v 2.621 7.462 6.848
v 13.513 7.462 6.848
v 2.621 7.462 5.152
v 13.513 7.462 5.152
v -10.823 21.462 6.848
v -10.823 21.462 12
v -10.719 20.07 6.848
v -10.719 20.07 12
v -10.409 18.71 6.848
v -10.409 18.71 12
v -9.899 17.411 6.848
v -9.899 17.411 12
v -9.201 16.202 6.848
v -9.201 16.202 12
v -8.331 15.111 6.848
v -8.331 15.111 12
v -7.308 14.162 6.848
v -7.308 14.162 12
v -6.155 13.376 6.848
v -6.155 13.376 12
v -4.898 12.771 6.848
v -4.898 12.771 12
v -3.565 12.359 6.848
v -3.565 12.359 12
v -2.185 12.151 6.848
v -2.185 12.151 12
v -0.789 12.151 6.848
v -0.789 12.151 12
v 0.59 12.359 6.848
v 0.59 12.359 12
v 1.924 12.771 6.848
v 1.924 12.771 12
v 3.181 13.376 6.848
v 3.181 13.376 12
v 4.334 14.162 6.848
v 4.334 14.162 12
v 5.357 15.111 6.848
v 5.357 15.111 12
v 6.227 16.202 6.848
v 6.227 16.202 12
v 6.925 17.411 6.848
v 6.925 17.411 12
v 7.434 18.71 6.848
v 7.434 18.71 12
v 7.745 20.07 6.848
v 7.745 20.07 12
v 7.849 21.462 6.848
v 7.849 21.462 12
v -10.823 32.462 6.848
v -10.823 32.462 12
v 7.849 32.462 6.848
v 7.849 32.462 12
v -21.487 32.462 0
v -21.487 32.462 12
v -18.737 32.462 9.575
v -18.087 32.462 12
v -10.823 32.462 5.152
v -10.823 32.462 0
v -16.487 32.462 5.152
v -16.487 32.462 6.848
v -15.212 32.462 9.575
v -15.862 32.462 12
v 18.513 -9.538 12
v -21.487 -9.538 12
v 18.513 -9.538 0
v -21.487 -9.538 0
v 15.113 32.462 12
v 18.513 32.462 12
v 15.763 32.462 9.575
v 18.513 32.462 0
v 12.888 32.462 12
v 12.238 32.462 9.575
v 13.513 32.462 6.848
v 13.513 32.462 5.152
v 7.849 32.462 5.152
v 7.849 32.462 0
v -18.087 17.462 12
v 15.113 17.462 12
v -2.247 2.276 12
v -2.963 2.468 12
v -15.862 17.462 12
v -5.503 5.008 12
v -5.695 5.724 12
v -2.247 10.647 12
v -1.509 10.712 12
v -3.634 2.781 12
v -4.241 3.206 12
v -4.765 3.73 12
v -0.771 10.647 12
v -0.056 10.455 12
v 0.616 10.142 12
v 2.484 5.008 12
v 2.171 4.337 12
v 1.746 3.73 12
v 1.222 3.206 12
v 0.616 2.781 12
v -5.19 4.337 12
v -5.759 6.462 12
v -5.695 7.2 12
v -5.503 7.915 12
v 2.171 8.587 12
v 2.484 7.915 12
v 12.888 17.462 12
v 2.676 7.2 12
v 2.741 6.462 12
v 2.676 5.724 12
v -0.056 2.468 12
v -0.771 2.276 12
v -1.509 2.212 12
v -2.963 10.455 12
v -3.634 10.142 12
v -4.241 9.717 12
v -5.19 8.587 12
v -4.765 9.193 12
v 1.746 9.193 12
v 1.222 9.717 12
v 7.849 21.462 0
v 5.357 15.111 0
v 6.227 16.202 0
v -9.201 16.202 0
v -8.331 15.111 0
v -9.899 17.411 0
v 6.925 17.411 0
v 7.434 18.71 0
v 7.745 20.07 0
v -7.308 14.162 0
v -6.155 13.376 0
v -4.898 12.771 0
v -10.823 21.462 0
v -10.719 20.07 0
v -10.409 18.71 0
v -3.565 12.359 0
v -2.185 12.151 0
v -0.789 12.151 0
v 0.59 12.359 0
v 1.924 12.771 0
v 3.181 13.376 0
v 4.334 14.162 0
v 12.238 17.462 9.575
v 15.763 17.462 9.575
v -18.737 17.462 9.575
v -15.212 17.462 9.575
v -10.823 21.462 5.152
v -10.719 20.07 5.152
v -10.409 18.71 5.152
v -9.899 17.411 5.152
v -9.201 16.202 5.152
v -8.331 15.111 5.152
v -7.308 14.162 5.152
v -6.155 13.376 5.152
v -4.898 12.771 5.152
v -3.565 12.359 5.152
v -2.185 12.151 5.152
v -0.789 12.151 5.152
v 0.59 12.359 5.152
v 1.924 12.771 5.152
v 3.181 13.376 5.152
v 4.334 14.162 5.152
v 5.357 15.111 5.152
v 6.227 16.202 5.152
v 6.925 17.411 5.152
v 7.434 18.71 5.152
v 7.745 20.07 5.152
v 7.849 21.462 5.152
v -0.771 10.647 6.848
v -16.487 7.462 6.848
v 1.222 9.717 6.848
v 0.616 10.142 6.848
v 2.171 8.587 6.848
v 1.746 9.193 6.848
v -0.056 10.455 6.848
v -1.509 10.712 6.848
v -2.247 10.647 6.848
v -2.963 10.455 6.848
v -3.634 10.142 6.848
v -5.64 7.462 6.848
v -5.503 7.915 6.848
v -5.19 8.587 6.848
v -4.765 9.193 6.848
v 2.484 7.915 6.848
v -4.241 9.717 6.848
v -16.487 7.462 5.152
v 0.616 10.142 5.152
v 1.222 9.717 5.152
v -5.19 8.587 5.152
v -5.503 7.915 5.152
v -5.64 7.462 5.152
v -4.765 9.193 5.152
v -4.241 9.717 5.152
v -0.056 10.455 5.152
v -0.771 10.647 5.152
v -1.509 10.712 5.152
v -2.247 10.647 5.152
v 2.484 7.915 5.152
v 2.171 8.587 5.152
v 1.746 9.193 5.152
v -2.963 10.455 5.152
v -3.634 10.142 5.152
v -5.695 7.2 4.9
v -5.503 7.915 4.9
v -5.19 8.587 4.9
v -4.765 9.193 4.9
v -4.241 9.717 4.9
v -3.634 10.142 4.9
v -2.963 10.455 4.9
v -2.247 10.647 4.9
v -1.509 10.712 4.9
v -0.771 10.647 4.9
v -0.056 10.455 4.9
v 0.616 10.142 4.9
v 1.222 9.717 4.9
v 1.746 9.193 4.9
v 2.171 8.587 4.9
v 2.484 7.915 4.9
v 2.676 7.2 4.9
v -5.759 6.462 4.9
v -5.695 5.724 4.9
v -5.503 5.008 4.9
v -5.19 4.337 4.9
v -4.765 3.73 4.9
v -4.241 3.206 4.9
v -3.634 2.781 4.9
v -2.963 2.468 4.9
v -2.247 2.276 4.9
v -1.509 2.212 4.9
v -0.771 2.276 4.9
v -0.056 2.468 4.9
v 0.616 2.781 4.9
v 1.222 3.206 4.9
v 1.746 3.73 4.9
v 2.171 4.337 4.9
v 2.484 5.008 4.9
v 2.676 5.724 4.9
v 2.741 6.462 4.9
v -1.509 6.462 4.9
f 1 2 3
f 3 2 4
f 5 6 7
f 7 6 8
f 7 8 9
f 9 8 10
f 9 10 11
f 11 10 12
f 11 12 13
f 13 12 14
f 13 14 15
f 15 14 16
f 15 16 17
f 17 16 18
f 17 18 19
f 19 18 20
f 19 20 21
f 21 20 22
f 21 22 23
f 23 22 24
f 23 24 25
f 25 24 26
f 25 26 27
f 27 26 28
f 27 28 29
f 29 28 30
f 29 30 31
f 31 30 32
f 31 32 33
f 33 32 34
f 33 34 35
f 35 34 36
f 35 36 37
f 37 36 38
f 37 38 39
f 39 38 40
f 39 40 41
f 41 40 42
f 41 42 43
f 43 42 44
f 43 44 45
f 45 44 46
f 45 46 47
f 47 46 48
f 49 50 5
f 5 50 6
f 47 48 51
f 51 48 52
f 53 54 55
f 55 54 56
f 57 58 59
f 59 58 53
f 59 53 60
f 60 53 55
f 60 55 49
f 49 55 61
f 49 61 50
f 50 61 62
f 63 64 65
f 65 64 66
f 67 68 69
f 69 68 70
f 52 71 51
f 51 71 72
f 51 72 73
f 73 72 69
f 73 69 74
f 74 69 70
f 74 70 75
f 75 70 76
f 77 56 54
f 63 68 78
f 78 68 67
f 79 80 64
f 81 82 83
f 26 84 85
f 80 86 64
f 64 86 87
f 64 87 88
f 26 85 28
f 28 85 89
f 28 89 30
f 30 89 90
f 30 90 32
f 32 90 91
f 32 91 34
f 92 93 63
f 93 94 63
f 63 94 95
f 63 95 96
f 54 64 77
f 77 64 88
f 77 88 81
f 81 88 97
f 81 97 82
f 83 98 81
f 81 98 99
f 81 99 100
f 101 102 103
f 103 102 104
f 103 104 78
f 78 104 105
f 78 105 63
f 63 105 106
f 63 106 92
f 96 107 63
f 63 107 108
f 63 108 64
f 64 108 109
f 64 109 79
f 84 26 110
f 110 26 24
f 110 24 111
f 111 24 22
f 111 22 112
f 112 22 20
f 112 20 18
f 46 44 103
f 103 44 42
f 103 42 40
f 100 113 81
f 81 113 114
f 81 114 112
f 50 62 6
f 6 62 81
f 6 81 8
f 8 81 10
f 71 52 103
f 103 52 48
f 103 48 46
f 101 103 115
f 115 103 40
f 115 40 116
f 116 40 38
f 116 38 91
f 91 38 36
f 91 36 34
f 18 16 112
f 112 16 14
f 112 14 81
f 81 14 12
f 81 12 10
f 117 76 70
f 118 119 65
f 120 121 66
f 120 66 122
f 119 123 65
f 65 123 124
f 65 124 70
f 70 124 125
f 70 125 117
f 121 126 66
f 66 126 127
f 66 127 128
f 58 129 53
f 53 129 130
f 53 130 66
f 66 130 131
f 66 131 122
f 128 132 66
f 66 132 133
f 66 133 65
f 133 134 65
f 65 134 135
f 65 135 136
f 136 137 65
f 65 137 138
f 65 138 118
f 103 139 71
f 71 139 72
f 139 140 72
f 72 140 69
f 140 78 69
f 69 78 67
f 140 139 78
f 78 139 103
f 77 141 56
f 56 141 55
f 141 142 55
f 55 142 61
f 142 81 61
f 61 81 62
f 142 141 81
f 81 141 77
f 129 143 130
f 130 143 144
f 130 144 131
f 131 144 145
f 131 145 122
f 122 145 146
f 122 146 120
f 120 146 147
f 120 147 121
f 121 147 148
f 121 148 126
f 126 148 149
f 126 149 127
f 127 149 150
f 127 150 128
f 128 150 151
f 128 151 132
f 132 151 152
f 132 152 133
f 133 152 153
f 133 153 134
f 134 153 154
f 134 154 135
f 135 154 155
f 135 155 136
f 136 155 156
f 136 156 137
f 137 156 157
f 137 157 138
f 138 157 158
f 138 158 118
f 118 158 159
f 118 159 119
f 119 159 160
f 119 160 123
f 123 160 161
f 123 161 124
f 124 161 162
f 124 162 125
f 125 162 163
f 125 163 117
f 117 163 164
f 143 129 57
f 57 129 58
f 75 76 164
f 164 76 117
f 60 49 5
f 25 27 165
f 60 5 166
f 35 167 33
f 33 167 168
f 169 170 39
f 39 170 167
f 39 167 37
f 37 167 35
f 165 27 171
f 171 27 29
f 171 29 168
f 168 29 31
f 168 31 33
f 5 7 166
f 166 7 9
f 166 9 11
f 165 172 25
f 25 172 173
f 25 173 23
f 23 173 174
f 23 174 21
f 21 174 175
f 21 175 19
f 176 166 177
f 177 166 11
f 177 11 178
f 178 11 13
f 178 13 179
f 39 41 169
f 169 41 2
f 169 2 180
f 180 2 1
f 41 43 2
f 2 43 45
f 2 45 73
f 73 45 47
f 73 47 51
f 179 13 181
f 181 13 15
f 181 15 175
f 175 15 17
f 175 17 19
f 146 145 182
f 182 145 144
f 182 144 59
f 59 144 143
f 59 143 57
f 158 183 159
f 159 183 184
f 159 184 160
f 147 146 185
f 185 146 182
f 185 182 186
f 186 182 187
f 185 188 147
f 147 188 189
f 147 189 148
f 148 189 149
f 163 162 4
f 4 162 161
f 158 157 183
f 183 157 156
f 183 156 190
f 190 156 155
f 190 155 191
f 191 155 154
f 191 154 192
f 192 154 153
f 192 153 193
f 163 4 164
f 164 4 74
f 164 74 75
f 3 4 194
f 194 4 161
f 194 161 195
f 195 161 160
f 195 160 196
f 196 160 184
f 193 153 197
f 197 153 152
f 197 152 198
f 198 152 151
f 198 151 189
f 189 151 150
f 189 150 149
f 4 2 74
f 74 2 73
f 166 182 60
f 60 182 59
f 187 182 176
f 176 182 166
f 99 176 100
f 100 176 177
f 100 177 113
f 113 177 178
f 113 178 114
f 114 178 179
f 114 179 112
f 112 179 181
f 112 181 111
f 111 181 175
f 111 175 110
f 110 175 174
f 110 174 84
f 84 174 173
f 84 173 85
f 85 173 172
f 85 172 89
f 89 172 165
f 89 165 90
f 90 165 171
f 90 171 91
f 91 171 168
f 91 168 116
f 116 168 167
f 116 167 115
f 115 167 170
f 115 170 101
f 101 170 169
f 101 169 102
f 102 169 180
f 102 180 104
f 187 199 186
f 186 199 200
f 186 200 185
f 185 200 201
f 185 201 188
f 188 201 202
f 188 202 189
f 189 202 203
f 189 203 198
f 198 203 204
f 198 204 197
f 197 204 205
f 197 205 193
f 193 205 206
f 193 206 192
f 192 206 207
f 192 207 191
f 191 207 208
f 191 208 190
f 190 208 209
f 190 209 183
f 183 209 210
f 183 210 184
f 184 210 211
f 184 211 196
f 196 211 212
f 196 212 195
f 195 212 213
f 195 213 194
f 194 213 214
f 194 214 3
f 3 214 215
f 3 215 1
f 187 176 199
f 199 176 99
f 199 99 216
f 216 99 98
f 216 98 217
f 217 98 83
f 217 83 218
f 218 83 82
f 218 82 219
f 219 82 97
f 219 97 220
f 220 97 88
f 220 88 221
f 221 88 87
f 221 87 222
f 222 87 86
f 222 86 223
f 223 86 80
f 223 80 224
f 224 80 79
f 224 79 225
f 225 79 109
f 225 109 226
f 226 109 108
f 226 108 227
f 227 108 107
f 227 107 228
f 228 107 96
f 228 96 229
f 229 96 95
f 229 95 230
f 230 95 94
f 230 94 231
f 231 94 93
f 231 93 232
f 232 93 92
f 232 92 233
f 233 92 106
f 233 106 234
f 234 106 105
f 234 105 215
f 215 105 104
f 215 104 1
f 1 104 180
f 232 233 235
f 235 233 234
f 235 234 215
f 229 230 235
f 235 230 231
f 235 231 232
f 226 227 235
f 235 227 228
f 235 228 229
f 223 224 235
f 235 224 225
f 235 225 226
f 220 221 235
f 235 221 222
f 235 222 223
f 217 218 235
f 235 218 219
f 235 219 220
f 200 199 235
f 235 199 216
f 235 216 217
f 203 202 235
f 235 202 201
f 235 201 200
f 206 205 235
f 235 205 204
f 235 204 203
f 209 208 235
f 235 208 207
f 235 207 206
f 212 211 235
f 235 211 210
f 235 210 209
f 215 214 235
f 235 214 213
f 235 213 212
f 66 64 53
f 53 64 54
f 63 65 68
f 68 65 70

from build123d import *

# Parameters (mm, degrees)
SKETCH2_W           = 36
SKETCH2_H           = 42
BOSS_EXTRUDE1_DEPTH = 12
CUT_EXTRUDE1_DEPTH  = 15
CUT_EXTRUDE2_DEPTH  = 12
SKETCH5_W           = 30
SKETCH5_H           = 1.695405108
CUT_EXTRUDE3_DEPTH  = 25
SKETCH6_R           = 4.25
CUT_EXTRUDE4_DEPTH  = 7.1
SKETCH7_W           = 2
SKETCH7_H           = 12
BOSS_EXTRUDE2_DEPTH = 42


with BuildPart() as part:
    # Sketch2 → Boss-Extrude1 (new body)
    with BuildSketch(Plane.XY):
        with Locations((-1.487179487, 11.461538462)):
            Rectangle(SKETCH2_W, SKETCH2_H)
    extrude(amount=BOSS_EXTRUDE1_DEPTH)

    # Sketch3 → Cut-Extrude1 (cut)
    with BuildSketch(Plane(origin=(0, 32.461538462, 0), x_dir=(1, 0, 0), z_dir=(0, 1, 0))):
        Polygon((-18.087179487, -12), (-18.736956279, -9.575), (-15.212402696, -9.575), (-15.862179487, -12), align=None)
        Polygon((15.112820513, -12), (15.762597304, -9.575), (12.238043721, -9.575), (12.887820513, -12), align=None)
    extrude(amount=-CUT_EXTRUDE1_DEPTH, mode=Mode.SUBTRACT)

    # Sketch4 → Cut-Extrude2 (cut)
    with BuildSketch(Plane.XY.offset(12)):
        with BuildLine():
            Line((-10.823469947, 32.461538462), (7.849110972, 32.461538462))
            Line((7.849110972, 32.461538462), (7.849110972, 21.461538462))
            ThreePointArc((7.849110972, 21.461538462), (-1.487179487, 12.125248002), (-10.823469947, 21.461538462))
            Line((-10.823469947, 21.461538462), (-10.823469947, 32.461538462))
        make_face()
    extrude(amount=-CUT_EXTRUDE2_DEPTH, mode=Mode.SUBTRACT)

    # Sketch5 → Cut-Extrude3 (cut)
    with BuildSketch(Plane(origin=(0, 32.461538462, 0), x_dir=(1, 0, 0), z_dir=(0, 1, 0))):
        with Locations((-1.487179487, -6)):
            Rectangle(SKETCH5_W, SKETCH5_H)
    extrude(amount=-CUT_EXTRUDE3_DEPTH, mode=Mode.SUBTRACT)

    # Sketch6 → Cut-Extrude4 (cut)
    with BuildSketch(Plane.XY.offset(12)):
        with Locations((-1.509360089, 6.461538462)):
            Circle(SKETCH6_R)
    extrude(amount=-CUT_EXTRUDE4_DEPTH, mode=Mode.SUBTRACT)

    # Sketch7 → Boss-Extrude2 (add)
    with BuildSketch(Plane(origin=(0, 32.461538462, 0), x_dir=(1, 0, 0), z_dir=(0, 1, 0))):
        with Locations((-20.487179487, -6)):
            Rectangle(SKETCH7_W, SKETCH7_H)
        with Locations((17.512820513, -6)):
            Rectangle(SKETCH7_W, SKETCH7_H)
    extrude(amount=-BOSS_EXTRUDE2_DEPTH)


solid = part.part
